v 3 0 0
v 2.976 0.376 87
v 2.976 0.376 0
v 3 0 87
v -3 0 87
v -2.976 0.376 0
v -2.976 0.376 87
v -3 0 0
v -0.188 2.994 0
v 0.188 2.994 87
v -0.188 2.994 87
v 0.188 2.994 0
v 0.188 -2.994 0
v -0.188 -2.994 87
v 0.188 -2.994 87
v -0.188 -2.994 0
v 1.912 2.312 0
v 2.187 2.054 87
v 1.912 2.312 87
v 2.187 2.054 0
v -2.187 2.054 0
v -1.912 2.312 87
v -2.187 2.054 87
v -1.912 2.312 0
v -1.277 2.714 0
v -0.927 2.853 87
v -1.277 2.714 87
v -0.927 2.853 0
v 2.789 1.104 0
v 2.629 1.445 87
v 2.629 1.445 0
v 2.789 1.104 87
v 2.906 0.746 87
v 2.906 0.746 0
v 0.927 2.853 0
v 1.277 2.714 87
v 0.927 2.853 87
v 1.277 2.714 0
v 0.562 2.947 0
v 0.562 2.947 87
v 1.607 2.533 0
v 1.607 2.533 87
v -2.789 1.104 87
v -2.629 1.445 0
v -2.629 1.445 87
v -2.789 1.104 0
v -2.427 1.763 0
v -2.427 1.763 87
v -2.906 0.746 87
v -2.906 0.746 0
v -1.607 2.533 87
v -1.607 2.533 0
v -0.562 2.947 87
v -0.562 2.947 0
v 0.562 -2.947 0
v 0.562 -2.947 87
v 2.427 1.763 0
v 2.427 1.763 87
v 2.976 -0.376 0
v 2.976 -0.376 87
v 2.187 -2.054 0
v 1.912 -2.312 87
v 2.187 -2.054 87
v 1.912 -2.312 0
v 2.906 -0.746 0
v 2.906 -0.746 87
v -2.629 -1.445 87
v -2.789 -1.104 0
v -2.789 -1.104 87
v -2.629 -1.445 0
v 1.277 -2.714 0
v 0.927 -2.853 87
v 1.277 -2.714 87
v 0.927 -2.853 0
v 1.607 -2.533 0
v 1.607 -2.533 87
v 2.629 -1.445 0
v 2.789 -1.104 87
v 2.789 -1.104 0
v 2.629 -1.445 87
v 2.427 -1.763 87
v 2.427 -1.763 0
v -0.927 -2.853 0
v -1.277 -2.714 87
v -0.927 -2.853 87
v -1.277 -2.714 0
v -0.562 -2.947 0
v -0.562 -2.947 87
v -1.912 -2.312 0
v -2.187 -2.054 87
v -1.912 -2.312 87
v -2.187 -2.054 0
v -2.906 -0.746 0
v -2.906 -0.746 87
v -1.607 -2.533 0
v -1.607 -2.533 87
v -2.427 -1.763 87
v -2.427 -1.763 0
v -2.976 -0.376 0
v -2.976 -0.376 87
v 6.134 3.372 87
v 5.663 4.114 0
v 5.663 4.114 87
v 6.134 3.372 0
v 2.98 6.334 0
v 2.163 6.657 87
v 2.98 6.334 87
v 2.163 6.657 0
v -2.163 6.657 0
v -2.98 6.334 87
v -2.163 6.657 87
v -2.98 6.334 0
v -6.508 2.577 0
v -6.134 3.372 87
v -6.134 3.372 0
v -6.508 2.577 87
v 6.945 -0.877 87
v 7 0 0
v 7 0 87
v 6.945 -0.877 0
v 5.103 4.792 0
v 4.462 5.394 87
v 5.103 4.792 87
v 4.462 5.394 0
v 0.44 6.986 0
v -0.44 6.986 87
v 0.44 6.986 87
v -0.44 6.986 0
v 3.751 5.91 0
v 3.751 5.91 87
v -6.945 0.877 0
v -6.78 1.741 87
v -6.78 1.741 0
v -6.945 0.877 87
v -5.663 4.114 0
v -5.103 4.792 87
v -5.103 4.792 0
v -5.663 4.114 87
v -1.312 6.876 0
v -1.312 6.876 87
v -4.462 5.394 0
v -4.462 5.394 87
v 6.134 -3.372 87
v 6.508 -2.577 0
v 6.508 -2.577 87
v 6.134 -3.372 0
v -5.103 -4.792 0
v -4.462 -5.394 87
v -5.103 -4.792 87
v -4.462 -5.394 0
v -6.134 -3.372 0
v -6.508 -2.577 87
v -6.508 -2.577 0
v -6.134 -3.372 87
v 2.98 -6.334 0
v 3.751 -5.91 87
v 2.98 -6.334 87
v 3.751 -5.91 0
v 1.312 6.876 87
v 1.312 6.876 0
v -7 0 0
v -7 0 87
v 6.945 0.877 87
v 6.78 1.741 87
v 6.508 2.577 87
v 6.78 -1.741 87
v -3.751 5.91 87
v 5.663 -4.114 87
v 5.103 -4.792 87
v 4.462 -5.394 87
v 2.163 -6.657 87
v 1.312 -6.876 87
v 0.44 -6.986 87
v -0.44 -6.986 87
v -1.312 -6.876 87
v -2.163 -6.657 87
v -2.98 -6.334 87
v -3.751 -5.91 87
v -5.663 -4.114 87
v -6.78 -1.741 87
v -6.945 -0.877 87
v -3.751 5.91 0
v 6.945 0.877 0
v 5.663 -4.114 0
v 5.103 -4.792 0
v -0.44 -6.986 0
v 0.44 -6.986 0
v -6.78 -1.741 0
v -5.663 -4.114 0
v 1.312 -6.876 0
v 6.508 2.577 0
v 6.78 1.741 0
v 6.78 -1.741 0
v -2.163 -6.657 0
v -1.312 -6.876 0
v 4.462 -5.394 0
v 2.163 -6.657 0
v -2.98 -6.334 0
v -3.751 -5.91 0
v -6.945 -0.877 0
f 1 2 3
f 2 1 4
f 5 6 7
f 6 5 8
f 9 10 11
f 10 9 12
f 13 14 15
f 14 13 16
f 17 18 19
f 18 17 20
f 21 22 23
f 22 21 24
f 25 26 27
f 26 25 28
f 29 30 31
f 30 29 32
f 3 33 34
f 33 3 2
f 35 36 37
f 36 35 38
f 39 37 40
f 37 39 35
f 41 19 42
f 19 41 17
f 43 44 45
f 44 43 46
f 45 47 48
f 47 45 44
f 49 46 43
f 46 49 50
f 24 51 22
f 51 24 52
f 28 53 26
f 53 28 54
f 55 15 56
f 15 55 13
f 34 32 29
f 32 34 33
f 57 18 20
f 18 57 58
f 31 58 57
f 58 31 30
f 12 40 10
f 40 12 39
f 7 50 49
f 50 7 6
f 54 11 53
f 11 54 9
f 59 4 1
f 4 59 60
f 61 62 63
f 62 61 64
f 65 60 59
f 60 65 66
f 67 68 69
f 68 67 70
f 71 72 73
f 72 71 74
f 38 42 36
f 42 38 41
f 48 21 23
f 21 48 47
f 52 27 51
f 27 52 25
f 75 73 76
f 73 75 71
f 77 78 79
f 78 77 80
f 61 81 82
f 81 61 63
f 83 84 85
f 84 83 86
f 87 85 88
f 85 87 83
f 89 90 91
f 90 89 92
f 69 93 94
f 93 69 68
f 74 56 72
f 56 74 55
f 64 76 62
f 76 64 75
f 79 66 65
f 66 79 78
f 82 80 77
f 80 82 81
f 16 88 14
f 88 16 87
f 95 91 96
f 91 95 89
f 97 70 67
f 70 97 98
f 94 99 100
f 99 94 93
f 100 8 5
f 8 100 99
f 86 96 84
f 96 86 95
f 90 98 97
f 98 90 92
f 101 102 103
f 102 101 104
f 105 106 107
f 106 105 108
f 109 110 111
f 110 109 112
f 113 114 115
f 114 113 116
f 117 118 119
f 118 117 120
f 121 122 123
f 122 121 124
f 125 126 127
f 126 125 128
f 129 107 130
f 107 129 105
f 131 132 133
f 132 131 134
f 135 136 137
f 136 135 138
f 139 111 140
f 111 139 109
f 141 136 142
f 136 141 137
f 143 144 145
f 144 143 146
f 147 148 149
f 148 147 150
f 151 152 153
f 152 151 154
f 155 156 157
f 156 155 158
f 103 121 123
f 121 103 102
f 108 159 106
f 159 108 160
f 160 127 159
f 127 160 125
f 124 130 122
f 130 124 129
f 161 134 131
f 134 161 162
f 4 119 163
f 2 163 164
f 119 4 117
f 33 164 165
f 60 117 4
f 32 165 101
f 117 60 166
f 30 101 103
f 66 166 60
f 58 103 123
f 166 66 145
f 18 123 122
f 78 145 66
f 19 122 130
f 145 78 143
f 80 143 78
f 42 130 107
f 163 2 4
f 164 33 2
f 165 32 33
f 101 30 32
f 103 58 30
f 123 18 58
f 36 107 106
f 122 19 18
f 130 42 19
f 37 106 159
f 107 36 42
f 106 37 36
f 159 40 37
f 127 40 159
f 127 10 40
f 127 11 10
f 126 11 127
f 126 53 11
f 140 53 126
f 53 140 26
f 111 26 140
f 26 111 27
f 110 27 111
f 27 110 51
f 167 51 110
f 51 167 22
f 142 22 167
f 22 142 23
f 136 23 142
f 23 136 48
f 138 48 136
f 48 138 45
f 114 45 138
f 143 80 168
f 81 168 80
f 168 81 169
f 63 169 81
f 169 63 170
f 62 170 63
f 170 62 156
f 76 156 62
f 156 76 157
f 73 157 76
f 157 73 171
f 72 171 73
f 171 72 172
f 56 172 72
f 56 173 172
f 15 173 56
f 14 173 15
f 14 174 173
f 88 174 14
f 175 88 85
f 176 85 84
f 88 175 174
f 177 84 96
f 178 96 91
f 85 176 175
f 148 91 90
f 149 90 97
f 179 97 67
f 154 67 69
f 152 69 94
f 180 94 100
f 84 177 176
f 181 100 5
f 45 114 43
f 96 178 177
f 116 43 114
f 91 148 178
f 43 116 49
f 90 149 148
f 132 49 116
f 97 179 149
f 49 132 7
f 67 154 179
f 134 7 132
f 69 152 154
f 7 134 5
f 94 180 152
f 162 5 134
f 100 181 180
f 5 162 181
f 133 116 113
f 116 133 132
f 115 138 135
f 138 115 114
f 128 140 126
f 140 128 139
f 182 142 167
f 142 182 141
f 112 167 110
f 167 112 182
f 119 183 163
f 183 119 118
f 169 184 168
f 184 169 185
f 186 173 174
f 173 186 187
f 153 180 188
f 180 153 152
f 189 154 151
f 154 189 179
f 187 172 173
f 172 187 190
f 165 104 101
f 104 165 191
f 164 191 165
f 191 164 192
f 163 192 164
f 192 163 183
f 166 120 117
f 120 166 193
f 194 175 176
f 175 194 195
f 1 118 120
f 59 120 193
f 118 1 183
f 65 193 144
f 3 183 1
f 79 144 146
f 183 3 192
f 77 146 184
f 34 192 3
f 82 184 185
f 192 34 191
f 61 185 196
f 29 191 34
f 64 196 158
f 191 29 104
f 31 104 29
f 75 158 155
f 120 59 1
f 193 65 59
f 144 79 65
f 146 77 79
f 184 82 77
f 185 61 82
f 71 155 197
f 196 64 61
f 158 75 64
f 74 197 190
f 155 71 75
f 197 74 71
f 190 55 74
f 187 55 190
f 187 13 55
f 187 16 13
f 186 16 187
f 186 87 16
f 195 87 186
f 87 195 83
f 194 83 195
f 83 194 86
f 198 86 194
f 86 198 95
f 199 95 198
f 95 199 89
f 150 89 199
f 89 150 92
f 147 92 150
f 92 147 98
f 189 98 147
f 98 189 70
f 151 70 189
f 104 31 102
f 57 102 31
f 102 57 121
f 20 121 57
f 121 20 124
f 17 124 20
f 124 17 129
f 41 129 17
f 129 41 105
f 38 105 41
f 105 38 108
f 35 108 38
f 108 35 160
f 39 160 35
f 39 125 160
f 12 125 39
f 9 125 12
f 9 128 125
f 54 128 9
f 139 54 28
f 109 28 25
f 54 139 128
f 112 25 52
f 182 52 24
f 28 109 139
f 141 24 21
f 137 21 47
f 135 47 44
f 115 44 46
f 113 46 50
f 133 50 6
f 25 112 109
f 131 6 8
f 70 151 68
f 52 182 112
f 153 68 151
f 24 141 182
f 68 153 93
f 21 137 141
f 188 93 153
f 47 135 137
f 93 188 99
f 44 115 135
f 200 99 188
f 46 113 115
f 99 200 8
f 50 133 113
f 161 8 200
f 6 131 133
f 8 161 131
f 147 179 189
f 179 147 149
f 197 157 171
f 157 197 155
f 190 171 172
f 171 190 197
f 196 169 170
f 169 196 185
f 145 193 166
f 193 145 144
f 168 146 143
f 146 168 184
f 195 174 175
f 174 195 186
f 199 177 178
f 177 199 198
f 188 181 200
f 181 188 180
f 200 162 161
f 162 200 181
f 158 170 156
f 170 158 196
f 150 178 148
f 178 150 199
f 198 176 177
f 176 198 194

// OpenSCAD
$fn = 50;


difference() {
	union() {
		*color(alpha = 1.0000000000, c = "gray") {
			translate(v = [0, 7, 0]) {
				linear_extrude(height = 1) {
					text(font = "Arial:style=Bold", halign = "center", size = 4.5000000000, text = "COMMENT plate main", valign = "center");
				}
			}
		}
		cylinder(h = 87, r = 7.0000000000);
	}
	union() {
		*color(alpha = 1.0000000000, c = "gray") {
			translate(v = [0, 7, 0]) {
				linear_extrude(height = 1) {
					text(font = "Arial:style=Bold", halign = "center", size = 4.5000000000, text = "COMMENT holes main", valign = "center");
				}
			}
		}
		translate(v = [0, 0, -100]) {
			cylinder(h = 200, r = 3.0000000000);
		}
		translate(v = [0, 0, -100]) {
			cylinder(h = 200, r = 1.5000000000);
		}
	}
}
